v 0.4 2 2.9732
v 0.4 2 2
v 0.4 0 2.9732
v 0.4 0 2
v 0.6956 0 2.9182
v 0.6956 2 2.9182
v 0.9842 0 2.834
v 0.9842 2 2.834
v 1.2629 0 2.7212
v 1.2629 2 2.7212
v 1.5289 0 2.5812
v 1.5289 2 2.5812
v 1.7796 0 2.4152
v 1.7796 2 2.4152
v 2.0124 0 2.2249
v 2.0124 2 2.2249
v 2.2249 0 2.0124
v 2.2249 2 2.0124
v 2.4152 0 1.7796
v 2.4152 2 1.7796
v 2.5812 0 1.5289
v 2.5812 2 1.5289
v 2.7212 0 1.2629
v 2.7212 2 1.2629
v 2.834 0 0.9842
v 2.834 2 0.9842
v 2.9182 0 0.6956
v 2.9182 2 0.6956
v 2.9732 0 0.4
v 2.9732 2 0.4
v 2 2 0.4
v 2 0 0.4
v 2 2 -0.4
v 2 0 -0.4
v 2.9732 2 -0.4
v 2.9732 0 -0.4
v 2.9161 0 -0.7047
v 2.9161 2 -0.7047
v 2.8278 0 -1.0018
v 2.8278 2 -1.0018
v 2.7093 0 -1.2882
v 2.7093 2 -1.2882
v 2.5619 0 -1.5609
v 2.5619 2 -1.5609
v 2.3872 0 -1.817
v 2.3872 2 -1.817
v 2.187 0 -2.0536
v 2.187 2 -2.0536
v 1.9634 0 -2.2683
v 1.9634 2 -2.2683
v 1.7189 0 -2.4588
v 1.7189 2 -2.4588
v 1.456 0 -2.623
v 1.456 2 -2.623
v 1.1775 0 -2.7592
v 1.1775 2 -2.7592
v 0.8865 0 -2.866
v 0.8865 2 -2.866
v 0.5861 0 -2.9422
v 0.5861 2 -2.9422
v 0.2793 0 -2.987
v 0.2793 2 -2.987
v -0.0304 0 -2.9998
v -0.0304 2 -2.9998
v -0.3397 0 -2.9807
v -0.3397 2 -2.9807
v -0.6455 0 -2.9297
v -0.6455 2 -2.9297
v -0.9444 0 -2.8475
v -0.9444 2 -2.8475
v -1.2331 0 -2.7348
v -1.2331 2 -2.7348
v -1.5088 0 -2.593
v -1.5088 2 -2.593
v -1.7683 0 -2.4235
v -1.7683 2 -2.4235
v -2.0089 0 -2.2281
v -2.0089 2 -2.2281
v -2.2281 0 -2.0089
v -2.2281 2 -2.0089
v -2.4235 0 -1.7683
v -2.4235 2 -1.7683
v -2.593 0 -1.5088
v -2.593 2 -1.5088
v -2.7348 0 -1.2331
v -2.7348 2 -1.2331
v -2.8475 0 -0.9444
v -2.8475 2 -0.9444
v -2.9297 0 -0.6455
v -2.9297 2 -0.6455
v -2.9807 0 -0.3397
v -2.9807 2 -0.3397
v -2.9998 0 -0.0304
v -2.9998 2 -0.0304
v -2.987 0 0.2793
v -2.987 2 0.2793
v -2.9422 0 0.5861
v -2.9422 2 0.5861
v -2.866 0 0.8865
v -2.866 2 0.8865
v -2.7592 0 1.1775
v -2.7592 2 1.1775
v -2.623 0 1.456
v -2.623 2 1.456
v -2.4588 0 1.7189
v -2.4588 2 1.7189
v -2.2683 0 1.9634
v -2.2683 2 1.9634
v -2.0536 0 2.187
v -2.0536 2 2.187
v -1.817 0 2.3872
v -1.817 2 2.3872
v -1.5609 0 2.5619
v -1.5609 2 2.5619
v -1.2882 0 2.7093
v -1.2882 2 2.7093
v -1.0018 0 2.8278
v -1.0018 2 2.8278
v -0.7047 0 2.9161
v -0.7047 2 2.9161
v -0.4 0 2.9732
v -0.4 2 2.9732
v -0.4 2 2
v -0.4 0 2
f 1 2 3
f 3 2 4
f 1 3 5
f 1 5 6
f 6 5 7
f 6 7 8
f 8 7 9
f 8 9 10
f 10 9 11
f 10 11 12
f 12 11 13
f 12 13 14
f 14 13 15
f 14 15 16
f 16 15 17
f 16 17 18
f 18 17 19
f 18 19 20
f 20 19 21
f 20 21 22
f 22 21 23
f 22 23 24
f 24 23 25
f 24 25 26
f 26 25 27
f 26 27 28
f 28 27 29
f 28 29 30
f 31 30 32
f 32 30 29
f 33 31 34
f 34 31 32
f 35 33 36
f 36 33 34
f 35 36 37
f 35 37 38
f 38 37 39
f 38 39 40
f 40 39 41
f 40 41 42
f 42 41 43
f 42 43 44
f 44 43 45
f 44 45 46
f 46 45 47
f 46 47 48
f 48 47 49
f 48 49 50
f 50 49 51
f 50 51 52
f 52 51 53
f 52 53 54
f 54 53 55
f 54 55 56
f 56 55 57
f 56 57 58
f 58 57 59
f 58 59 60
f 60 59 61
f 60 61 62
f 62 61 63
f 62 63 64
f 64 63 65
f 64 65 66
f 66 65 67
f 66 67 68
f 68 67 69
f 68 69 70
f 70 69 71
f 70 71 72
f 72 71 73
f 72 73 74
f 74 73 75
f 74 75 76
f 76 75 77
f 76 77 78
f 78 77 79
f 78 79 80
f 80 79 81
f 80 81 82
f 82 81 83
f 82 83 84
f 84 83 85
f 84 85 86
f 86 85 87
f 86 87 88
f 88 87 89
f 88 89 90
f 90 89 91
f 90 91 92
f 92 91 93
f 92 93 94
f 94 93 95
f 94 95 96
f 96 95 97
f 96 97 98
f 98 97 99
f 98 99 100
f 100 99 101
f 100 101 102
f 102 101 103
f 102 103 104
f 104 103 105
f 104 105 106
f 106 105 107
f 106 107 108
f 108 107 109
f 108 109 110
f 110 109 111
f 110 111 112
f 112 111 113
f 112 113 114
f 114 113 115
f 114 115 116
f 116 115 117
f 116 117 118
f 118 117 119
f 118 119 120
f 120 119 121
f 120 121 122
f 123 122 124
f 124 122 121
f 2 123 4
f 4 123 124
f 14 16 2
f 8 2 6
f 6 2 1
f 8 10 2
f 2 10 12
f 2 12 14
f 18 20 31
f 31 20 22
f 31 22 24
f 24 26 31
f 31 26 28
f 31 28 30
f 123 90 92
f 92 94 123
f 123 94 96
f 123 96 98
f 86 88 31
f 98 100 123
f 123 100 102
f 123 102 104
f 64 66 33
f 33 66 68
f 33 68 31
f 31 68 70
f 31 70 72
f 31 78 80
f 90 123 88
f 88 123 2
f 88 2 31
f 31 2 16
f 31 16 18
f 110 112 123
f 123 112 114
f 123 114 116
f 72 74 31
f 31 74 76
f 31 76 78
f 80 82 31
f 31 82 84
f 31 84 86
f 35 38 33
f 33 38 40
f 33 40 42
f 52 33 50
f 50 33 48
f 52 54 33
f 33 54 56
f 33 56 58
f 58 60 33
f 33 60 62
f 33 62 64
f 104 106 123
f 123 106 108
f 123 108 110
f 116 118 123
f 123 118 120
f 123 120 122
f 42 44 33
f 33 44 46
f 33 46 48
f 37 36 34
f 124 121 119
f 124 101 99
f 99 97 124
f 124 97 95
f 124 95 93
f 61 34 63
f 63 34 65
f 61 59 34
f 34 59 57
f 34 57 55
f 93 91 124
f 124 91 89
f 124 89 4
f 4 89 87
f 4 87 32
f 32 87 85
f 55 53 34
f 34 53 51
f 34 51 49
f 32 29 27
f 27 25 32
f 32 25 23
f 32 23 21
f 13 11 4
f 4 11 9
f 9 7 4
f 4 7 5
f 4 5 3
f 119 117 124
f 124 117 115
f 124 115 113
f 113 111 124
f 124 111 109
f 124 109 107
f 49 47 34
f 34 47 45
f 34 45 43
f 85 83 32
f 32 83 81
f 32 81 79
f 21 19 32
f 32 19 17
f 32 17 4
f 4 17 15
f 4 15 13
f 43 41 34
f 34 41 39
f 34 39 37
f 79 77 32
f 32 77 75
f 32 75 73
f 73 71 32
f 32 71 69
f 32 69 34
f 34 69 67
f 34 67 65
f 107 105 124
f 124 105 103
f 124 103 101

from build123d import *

# Parameters (mm, degrees)
BOSS_EXTRUDE1_DEPTH = 2


with BuildPart() as part:
    # Sketch2 → Boss-Extrude1 (new body)
    with BuildSketch(Plane(origin=(0, 0, 0), x_dir=(1, 0, 0), z_dir=(0, 1, 0))):
        with BuildLine():
            ThreePointArc((2.973213749, 0.4), (-2.121320344, 2.121320344), (-0.4, -2.973213749))
            Line((-0.4, -2.973213749), (-0.4, -2))
            Line((-0.4, -2), (0.4, -2))
            Line((0.4, -2), (0.4, -2.973213749))
            ThreePointArc((0.4, -2.973213749), (2.121320344, -2.121320344), (2.973213749, -0.4))
            Line((2.973213749, -0.4), (2, -0.4))
            Line((2, -0.4), (2, 0.4))
            Line((2, 0.4), (2.973213749, 0.4))
        make_face()
    extrude(amount=BOSS_EXTRUDE1_DEPTH)


solid = part.part
